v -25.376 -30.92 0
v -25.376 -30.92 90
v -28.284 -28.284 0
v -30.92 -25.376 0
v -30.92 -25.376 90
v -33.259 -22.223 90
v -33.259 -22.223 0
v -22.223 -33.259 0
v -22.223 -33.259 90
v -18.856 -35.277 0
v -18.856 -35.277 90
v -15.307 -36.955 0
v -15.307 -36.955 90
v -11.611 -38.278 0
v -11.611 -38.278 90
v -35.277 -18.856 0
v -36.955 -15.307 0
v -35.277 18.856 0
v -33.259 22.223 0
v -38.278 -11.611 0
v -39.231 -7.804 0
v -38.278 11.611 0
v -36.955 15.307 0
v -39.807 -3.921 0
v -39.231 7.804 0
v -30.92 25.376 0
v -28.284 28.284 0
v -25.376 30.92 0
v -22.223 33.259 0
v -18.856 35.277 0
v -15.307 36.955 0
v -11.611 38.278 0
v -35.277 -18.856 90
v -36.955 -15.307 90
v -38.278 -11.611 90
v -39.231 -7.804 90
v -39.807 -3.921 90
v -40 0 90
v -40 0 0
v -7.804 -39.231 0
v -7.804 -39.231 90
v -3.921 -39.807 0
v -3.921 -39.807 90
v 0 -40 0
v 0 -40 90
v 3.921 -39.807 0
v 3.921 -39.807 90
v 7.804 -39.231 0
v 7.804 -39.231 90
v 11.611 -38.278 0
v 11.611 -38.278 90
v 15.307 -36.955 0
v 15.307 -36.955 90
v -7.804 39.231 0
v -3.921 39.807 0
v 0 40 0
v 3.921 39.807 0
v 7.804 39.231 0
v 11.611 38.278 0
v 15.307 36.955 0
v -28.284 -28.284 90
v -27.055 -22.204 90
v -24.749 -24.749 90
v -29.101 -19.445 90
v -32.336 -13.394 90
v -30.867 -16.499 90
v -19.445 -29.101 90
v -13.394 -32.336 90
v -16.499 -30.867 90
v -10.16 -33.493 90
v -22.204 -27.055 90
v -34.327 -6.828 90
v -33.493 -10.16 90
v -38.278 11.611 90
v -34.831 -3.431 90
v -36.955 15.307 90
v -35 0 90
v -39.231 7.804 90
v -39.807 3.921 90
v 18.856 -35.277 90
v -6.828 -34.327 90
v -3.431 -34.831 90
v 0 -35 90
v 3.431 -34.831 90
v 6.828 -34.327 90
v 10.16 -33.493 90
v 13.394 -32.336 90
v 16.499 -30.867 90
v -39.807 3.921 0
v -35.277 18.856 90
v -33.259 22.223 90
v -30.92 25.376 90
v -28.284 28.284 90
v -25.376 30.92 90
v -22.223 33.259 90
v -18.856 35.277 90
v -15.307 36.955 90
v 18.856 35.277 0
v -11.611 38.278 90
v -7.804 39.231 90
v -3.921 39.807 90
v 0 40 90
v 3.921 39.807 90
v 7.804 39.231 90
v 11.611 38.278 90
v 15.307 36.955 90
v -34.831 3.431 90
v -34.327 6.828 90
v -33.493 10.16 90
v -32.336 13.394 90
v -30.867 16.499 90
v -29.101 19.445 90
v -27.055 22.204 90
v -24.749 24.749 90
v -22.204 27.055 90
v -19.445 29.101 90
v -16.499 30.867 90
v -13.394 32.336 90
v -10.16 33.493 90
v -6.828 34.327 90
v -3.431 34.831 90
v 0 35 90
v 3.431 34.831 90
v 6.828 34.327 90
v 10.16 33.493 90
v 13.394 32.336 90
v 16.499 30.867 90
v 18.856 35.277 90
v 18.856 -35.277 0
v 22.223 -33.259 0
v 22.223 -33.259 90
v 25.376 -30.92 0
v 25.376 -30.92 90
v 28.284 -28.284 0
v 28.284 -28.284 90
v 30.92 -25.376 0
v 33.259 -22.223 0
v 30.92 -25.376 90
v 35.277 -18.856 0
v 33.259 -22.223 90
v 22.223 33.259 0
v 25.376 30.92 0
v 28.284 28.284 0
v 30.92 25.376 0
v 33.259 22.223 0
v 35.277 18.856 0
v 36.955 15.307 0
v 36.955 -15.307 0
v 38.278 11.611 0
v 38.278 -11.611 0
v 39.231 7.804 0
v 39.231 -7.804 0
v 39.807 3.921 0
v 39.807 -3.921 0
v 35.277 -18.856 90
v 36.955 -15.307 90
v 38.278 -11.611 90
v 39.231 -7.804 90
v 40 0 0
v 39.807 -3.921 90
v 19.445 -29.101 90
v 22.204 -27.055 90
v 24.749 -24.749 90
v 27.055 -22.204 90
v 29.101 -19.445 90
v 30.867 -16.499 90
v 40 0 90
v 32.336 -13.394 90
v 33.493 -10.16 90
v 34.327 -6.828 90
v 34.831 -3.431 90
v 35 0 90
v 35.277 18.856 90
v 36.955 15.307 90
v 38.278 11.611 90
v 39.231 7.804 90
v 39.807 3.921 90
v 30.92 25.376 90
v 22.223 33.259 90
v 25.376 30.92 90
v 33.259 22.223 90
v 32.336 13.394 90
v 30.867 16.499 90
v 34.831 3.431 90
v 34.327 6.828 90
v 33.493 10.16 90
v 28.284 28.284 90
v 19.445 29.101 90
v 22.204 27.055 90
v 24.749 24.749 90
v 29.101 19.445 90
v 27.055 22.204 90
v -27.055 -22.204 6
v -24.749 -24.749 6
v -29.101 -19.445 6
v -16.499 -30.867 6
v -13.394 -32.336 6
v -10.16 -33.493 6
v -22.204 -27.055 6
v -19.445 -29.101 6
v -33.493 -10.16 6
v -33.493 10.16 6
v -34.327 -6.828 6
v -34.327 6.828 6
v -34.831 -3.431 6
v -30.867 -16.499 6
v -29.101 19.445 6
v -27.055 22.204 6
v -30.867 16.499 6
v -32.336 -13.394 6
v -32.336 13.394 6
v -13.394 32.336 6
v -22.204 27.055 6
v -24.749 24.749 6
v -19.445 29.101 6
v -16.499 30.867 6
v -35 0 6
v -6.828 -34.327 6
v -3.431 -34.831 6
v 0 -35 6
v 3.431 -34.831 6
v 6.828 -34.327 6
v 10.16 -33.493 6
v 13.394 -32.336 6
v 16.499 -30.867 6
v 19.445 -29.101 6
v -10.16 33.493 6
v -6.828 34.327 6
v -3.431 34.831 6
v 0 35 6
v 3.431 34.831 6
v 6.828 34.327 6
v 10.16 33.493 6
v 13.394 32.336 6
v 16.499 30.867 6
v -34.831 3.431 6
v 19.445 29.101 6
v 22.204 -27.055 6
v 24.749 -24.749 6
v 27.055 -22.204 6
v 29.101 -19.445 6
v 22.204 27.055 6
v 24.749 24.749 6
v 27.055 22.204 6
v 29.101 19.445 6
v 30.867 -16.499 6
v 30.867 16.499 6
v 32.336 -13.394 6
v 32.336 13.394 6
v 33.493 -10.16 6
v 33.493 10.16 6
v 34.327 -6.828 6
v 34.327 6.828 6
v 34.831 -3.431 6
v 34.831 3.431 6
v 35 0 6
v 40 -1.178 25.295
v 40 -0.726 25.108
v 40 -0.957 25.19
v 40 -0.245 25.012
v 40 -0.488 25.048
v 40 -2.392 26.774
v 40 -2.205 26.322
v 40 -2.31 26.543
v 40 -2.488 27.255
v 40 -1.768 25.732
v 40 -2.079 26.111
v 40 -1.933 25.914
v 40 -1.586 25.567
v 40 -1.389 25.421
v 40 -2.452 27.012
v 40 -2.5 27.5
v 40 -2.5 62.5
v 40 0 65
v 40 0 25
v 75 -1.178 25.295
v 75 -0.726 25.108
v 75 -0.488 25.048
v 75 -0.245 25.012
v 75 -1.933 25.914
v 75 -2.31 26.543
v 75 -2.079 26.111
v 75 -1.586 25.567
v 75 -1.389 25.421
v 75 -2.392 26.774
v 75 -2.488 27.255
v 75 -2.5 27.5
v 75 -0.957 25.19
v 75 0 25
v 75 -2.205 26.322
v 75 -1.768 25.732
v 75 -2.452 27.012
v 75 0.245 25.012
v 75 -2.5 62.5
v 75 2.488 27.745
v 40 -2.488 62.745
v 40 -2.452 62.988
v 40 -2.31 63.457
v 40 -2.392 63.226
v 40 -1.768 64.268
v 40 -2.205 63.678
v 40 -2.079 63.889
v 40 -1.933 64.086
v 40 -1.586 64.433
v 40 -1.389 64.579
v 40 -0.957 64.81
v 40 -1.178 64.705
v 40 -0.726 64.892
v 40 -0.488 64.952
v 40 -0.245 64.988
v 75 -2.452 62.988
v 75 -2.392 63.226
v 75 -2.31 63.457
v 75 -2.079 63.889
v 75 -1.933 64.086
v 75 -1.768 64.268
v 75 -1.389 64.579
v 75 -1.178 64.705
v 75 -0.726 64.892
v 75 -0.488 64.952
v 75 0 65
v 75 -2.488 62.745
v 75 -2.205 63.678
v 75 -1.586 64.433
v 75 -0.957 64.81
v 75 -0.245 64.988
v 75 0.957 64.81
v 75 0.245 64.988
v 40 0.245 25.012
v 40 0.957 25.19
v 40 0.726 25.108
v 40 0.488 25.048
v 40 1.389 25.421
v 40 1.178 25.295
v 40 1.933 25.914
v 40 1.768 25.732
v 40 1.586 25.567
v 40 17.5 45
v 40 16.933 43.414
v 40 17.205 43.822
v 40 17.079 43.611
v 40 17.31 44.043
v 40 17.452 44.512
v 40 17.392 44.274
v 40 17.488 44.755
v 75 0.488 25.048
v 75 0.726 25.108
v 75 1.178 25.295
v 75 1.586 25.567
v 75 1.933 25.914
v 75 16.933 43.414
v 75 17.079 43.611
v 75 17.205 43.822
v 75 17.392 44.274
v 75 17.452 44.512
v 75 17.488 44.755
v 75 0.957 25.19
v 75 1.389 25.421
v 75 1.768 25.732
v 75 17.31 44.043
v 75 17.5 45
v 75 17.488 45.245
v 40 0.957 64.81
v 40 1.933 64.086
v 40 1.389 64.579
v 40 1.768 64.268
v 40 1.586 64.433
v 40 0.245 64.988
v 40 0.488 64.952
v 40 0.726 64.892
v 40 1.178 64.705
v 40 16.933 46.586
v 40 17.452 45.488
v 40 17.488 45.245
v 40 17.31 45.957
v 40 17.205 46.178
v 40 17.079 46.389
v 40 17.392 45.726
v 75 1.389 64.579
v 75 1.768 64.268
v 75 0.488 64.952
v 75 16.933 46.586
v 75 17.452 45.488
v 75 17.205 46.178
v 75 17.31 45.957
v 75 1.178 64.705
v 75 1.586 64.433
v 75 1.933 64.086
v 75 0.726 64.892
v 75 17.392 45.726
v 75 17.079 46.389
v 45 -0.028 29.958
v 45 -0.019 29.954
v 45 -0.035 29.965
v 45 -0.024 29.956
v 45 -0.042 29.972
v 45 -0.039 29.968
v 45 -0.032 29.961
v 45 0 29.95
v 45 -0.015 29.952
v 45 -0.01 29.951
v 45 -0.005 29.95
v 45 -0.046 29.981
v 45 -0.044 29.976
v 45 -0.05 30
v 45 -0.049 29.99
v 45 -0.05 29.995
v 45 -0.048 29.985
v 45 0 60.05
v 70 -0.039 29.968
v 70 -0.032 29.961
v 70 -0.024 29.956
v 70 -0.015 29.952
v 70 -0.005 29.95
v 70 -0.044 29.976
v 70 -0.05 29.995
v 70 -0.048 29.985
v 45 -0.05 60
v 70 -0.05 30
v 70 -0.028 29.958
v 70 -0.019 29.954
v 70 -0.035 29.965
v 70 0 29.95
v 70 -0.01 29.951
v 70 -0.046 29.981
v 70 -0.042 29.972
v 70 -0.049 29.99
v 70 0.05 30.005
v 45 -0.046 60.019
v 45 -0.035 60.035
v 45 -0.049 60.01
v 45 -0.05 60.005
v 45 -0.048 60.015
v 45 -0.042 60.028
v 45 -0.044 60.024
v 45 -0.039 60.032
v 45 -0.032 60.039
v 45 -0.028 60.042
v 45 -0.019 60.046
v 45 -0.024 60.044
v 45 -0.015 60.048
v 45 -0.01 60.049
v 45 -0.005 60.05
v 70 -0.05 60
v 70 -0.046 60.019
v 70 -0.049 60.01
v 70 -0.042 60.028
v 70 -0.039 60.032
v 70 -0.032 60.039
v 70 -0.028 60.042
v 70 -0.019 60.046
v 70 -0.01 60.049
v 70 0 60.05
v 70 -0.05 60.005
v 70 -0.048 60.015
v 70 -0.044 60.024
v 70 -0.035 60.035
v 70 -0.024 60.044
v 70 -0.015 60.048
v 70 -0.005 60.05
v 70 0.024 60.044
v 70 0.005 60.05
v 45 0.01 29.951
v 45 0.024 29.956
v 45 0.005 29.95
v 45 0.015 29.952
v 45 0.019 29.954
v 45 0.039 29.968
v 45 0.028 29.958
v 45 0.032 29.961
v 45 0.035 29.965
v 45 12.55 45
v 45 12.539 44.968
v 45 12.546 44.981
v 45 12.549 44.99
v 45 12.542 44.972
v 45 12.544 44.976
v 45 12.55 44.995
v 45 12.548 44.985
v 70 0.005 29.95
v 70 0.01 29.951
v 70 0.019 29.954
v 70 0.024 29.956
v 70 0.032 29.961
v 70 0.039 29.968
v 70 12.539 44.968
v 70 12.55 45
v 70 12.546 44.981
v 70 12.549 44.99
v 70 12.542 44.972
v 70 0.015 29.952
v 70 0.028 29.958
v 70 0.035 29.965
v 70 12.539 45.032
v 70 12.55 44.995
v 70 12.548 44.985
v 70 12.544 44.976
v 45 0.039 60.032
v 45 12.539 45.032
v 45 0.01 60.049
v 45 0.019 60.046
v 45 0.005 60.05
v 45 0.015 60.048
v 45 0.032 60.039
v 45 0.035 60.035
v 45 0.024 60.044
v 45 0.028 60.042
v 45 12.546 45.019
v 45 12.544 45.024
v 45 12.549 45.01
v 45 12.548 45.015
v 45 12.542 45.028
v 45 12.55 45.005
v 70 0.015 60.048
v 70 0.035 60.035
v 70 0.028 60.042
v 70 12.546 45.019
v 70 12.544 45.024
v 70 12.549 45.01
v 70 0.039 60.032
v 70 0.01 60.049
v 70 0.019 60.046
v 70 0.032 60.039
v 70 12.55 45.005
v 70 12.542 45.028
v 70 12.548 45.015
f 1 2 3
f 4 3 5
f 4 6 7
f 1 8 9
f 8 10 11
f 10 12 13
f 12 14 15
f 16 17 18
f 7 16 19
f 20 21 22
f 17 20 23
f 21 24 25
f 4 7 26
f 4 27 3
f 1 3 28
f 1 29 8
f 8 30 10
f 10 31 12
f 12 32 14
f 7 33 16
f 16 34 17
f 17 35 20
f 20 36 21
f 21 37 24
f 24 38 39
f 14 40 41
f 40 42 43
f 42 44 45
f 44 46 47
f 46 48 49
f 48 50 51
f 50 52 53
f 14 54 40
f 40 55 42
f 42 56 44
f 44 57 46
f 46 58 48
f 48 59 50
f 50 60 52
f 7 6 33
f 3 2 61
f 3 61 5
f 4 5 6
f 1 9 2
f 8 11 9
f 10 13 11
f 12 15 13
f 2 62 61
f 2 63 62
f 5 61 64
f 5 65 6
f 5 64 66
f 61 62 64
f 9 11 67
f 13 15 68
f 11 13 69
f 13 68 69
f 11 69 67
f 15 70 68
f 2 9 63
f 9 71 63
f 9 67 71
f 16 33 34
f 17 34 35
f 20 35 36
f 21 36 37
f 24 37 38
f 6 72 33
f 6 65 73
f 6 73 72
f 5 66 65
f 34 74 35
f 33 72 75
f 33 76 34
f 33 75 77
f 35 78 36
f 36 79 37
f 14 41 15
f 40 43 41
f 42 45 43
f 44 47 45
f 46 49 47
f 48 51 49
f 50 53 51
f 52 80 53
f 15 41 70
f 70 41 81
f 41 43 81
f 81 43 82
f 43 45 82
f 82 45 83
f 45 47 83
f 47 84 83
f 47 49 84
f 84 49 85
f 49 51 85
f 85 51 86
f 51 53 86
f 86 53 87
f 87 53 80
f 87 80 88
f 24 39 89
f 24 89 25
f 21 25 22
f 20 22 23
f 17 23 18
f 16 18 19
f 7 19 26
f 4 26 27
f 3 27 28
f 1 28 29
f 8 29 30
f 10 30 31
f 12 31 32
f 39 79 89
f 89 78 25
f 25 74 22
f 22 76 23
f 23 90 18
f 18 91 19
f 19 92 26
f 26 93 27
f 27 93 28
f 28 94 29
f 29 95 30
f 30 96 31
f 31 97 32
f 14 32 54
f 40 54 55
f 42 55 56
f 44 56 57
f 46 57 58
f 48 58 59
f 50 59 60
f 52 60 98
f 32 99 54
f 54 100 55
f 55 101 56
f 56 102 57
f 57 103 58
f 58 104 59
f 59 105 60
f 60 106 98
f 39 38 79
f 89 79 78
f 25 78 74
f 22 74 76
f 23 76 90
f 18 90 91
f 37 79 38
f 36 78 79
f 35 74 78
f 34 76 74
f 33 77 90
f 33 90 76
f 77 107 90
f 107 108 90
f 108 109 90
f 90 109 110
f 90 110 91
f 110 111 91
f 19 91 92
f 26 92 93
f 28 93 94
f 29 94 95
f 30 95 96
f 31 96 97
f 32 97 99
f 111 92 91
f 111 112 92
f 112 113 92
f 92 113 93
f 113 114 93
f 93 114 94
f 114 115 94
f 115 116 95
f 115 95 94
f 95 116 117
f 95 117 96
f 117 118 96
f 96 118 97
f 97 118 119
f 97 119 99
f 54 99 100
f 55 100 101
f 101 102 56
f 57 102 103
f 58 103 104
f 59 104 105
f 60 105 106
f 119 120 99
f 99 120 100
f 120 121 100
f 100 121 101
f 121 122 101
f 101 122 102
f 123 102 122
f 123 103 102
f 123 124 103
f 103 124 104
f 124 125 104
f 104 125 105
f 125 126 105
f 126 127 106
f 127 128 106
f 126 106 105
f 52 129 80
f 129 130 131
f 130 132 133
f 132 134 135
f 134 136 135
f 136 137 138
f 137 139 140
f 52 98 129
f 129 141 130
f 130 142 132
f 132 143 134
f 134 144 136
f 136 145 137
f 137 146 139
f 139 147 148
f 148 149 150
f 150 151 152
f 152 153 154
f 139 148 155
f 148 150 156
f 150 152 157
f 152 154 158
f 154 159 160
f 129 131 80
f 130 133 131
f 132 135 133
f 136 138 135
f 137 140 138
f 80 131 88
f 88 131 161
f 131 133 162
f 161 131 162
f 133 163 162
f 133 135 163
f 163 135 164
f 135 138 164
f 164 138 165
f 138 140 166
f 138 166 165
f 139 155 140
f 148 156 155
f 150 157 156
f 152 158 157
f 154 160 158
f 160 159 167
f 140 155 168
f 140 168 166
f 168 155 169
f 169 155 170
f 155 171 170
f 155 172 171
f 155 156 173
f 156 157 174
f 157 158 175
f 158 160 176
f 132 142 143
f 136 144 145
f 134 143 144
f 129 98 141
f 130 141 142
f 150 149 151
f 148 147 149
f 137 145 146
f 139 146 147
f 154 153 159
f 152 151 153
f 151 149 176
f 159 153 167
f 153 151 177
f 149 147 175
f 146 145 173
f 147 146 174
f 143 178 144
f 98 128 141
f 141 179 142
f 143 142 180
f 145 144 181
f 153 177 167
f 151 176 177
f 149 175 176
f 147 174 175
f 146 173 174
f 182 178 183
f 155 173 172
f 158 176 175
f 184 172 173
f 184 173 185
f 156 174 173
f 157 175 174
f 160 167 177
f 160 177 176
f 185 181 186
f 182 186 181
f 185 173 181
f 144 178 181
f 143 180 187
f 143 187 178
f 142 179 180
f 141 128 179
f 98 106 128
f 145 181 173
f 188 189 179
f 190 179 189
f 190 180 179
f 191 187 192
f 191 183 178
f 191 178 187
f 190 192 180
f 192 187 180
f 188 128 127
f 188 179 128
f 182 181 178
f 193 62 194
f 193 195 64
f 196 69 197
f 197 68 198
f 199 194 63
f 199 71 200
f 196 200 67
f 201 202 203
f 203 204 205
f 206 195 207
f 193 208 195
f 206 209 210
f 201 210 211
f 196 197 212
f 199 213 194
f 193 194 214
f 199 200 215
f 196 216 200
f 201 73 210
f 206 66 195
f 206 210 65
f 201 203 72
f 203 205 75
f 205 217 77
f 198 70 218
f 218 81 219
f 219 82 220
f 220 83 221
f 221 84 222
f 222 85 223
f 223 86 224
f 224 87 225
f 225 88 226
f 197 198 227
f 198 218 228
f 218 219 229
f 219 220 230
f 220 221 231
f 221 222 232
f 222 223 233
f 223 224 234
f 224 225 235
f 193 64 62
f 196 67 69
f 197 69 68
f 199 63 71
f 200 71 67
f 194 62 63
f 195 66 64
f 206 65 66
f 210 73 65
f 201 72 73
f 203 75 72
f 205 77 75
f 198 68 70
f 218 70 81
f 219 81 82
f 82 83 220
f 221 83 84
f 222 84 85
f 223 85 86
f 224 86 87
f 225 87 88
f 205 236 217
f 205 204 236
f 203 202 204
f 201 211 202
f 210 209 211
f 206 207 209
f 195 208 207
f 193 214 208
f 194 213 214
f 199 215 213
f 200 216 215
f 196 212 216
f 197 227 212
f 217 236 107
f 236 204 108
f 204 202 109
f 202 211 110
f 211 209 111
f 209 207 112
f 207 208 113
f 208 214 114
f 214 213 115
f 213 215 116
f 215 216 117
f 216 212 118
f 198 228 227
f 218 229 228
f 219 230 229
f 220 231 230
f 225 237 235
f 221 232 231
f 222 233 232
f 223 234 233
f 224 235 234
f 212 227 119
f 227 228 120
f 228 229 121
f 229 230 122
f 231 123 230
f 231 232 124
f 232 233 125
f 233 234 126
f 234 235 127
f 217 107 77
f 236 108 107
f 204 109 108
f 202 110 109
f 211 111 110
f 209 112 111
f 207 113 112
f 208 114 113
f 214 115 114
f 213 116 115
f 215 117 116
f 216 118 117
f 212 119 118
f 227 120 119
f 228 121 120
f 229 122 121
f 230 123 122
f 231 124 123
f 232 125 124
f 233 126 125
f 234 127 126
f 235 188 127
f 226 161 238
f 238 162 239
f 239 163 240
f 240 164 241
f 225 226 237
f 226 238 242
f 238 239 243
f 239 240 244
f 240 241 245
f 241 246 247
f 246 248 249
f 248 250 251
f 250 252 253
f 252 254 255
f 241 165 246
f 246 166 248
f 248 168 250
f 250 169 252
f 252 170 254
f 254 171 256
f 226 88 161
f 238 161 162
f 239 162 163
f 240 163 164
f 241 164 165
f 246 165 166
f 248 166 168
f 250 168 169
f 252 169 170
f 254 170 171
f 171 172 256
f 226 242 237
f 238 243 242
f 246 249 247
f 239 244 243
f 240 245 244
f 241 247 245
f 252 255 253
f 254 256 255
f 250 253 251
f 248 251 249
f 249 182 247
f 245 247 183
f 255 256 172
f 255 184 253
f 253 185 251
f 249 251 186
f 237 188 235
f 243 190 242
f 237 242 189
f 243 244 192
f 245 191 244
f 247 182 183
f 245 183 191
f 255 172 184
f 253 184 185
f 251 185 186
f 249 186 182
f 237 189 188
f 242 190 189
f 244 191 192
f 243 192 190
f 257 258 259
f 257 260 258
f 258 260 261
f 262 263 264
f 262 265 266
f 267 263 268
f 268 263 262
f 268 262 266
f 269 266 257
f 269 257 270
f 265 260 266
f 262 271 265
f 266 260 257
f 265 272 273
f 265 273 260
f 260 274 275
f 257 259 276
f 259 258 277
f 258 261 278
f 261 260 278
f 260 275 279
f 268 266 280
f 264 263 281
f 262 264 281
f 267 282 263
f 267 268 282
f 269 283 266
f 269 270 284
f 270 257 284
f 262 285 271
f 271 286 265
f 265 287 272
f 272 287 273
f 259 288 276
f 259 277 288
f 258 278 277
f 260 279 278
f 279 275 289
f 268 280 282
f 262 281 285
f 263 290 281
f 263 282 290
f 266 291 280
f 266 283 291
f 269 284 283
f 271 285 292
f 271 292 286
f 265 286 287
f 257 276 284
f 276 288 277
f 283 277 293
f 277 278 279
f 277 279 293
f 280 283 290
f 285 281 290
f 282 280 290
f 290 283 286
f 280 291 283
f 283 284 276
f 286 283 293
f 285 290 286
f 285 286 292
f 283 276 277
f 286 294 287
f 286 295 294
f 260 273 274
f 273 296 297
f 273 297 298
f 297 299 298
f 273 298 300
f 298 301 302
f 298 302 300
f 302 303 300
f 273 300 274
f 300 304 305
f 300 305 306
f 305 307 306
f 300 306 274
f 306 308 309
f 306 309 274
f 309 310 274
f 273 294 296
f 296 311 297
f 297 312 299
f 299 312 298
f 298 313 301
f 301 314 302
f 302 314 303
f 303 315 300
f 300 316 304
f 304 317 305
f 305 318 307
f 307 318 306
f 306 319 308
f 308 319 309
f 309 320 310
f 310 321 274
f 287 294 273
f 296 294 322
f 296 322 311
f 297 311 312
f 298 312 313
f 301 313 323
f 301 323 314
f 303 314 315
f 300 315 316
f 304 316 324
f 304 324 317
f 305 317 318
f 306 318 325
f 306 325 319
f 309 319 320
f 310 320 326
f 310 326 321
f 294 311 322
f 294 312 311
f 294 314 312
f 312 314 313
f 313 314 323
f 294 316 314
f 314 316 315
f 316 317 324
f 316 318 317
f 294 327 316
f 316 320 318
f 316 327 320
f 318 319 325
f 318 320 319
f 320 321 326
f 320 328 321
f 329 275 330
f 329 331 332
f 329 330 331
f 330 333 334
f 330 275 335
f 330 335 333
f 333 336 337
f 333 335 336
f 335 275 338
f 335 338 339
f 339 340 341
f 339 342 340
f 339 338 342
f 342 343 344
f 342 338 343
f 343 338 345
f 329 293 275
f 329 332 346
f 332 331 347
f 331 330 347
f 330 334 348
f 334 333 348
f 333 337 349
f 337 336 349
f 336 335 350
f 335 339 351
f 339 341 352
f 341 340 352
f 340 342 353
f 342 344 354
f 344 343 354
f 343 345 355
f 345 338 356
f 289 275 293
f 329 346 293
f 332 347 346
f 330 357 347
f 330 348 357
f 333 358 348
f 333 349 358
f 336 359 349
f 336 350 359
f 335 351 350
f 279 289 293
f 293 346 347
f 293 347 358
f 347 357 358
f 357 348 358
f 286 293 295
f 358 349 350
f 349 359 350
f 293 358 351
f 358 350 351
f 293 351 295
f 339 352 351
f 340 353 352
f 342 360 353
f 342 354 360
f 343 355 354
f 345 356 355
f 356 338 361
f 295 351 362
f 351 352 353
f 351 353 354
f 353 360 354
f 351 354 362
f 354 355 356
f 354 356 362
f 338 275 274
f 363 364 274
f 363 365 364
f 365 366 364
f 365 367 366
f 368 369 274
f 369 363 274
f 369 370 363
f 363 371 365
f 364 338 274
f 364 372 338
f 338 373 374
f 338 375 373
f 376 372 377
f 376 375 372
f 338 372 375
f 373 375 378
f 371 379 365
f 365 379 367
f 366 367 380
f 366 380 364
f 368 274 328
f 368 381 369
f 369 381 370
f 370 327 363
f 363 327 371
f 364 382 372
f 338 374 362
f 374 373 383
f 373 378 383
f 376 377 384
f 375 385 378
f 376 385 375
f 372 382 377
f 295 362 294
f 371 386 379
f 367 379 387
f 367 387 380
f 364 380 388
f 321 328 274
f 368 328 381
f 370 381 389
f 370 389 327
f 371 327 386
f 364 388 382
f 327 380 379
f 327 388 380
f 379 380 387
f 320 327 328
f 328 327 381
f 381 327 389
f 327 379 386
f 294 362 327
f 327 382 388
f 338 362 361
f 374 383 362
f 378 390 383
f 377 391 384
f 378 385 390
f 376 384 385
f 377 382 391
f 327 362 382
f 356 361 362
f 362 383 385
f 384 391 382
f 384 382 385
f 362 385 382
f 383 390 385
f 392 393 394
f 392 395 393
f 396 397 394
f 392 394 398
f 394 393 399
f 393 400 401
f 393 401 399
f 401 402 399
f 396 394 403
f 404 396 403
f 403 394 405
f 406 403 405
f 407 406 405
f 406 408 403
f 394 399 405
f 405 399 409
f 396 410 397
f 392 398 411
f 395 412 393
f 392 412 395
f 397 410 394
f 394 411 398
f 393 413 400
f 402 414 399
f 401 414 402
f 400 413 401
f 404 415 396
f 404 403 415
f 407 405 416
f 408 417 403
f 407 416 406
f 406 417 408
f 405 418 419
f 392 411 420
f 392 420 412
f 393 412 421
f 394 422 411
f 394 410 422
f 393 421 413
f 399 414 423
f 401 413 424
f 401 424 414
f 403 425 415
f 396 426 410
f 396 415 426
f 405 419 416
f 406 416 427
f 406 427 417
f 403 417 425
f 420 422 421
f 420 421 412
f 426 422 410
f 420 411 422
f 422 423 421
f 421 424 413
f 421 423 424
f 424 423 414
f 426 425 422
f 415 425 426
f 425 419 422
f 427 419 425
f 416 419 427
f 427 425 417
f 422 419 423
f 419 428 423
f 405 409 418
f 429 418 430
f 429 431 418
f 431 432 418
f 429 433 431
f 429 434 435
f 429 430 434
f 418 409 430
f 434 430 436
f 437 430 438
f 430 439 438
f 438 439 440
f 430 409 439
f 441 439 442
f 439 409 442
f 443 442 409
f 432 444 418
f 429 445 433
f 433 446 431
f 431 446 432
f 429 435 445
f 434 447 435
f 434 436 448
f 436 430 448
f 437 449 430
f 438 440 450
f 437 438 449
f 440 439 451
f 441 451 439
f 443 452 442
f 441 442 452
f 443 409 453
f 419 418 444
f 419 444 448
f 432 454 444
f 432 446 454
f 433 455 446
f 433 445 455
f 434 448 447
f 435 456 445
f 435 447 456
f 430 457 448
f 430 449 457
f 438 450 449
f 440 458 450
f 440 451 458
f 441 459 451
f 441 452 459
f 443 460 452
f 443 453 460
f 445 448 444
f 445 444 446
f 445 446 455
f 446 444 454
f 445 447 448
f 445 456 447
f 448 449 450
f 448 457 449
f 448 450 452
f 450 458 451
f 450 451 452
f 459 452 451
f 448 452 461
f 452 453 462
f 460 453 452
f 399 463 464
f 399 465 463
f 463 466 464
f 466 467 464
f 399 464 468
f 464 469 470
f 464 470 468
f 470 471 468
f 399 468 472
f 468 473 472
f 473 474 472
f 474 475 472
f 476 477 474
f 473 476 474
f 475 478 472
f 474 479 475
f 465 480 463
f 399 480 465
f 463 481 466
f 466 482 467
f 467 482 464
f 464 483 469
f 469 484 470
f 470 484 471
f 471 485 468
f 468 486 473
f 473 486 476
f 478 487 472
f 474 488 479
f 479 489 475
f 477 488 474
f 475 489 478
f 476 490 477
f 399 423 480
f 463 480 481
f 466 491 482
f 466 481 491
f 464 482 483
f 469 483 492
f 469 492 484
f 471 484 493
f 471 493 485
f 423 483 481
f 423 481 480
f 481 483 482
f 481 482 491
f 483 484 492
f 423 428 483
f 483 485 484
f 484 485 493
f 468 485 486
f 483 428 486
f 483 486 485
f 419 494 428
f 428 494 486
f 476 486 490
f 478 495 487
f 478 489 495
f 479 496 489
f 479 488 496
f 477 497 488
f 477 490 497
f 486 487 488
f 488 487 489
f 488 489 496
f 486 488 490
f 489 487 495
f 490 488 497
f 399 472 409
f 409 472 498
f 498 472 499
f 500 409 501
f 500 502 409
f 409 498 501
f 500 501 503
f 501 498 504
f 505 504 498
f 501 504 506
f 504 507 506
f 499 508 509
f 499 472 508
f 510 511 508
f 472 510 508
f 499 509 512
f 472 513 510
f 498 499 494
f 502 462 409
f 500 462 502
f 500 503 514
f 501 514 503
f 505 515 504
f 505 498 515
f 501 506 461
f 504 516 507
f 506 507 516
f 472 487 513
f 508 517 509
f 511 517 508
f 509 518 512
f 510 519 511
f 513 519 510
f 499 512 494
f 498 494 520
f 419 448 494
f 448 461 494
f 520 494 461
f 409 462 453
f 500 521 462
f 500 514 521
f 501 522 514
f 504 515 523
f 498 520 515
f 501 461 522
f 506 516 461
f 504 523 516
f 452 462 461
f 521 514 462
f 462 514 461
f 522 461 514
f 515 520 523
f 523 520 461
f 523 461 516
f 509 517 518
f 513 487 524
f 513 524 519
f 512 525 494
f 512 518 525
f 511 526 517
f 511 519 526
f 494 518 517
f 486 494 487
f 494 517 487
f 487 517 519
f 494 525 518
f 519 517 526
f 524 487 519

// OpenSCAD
// マグカップ - 取手は+X方向
$fn = 64;

// 本体パラメータ
outer_d = 80;
inner_d = 70;
height = 90;
bottom_thick = 6;

// 取手パラメータ
handle_inner_h = 30;
handle_inner_w = 25;
handle_thick = 5;

// 本体
difference() {
    cylinder(d=outer_d, h=height);
    translate([0, 0, bottom_thick])
        cylinder(d=inner_d, h=height);
}

// 取手（+X方向）
handle_outer_w = handle_inner_w + handle_thick * 2;
handle_outer_h = handle_inner_h + handle_thick * 2;
handle_center_z = height / 2;

translate([outer_d/2, 0, handle_center_z])
rotate([90, 0, 0])
rotate([0, 90, 0])
difference() {
    // 外側形状
    hull() {
        translate([0, -handle_inner_h/2 - handle_thick/2, 0])
            cylinder(d=handle_thick, h=handle_outer_w);
        translate([0, handle_inner_h/2 + handle_thick/2, 0])
            cylinder(d=handle_thick, h=handle_outer_w);
        translate([handle_inner_w/2 + handle_thick/2, 0, 0])
            cylinder(d=handle_thick, h=handle_outer_w);
    }
    // 内側くり抜き
    translate([0, 0, handle_thick])
    hull() {
        translate([0, -handle_inner_h/2, 0])
            cylinder(d=0.1, h=handle_inner_w);
        translate([0, handle_inner_h/2, 0])
            cylinder(d=0.1, h=handle_inner_w);
        translate([handle_inner_w/2, 0, 0])
            cylinder(d=0.1, h=handle_inner_w);
    }
}
